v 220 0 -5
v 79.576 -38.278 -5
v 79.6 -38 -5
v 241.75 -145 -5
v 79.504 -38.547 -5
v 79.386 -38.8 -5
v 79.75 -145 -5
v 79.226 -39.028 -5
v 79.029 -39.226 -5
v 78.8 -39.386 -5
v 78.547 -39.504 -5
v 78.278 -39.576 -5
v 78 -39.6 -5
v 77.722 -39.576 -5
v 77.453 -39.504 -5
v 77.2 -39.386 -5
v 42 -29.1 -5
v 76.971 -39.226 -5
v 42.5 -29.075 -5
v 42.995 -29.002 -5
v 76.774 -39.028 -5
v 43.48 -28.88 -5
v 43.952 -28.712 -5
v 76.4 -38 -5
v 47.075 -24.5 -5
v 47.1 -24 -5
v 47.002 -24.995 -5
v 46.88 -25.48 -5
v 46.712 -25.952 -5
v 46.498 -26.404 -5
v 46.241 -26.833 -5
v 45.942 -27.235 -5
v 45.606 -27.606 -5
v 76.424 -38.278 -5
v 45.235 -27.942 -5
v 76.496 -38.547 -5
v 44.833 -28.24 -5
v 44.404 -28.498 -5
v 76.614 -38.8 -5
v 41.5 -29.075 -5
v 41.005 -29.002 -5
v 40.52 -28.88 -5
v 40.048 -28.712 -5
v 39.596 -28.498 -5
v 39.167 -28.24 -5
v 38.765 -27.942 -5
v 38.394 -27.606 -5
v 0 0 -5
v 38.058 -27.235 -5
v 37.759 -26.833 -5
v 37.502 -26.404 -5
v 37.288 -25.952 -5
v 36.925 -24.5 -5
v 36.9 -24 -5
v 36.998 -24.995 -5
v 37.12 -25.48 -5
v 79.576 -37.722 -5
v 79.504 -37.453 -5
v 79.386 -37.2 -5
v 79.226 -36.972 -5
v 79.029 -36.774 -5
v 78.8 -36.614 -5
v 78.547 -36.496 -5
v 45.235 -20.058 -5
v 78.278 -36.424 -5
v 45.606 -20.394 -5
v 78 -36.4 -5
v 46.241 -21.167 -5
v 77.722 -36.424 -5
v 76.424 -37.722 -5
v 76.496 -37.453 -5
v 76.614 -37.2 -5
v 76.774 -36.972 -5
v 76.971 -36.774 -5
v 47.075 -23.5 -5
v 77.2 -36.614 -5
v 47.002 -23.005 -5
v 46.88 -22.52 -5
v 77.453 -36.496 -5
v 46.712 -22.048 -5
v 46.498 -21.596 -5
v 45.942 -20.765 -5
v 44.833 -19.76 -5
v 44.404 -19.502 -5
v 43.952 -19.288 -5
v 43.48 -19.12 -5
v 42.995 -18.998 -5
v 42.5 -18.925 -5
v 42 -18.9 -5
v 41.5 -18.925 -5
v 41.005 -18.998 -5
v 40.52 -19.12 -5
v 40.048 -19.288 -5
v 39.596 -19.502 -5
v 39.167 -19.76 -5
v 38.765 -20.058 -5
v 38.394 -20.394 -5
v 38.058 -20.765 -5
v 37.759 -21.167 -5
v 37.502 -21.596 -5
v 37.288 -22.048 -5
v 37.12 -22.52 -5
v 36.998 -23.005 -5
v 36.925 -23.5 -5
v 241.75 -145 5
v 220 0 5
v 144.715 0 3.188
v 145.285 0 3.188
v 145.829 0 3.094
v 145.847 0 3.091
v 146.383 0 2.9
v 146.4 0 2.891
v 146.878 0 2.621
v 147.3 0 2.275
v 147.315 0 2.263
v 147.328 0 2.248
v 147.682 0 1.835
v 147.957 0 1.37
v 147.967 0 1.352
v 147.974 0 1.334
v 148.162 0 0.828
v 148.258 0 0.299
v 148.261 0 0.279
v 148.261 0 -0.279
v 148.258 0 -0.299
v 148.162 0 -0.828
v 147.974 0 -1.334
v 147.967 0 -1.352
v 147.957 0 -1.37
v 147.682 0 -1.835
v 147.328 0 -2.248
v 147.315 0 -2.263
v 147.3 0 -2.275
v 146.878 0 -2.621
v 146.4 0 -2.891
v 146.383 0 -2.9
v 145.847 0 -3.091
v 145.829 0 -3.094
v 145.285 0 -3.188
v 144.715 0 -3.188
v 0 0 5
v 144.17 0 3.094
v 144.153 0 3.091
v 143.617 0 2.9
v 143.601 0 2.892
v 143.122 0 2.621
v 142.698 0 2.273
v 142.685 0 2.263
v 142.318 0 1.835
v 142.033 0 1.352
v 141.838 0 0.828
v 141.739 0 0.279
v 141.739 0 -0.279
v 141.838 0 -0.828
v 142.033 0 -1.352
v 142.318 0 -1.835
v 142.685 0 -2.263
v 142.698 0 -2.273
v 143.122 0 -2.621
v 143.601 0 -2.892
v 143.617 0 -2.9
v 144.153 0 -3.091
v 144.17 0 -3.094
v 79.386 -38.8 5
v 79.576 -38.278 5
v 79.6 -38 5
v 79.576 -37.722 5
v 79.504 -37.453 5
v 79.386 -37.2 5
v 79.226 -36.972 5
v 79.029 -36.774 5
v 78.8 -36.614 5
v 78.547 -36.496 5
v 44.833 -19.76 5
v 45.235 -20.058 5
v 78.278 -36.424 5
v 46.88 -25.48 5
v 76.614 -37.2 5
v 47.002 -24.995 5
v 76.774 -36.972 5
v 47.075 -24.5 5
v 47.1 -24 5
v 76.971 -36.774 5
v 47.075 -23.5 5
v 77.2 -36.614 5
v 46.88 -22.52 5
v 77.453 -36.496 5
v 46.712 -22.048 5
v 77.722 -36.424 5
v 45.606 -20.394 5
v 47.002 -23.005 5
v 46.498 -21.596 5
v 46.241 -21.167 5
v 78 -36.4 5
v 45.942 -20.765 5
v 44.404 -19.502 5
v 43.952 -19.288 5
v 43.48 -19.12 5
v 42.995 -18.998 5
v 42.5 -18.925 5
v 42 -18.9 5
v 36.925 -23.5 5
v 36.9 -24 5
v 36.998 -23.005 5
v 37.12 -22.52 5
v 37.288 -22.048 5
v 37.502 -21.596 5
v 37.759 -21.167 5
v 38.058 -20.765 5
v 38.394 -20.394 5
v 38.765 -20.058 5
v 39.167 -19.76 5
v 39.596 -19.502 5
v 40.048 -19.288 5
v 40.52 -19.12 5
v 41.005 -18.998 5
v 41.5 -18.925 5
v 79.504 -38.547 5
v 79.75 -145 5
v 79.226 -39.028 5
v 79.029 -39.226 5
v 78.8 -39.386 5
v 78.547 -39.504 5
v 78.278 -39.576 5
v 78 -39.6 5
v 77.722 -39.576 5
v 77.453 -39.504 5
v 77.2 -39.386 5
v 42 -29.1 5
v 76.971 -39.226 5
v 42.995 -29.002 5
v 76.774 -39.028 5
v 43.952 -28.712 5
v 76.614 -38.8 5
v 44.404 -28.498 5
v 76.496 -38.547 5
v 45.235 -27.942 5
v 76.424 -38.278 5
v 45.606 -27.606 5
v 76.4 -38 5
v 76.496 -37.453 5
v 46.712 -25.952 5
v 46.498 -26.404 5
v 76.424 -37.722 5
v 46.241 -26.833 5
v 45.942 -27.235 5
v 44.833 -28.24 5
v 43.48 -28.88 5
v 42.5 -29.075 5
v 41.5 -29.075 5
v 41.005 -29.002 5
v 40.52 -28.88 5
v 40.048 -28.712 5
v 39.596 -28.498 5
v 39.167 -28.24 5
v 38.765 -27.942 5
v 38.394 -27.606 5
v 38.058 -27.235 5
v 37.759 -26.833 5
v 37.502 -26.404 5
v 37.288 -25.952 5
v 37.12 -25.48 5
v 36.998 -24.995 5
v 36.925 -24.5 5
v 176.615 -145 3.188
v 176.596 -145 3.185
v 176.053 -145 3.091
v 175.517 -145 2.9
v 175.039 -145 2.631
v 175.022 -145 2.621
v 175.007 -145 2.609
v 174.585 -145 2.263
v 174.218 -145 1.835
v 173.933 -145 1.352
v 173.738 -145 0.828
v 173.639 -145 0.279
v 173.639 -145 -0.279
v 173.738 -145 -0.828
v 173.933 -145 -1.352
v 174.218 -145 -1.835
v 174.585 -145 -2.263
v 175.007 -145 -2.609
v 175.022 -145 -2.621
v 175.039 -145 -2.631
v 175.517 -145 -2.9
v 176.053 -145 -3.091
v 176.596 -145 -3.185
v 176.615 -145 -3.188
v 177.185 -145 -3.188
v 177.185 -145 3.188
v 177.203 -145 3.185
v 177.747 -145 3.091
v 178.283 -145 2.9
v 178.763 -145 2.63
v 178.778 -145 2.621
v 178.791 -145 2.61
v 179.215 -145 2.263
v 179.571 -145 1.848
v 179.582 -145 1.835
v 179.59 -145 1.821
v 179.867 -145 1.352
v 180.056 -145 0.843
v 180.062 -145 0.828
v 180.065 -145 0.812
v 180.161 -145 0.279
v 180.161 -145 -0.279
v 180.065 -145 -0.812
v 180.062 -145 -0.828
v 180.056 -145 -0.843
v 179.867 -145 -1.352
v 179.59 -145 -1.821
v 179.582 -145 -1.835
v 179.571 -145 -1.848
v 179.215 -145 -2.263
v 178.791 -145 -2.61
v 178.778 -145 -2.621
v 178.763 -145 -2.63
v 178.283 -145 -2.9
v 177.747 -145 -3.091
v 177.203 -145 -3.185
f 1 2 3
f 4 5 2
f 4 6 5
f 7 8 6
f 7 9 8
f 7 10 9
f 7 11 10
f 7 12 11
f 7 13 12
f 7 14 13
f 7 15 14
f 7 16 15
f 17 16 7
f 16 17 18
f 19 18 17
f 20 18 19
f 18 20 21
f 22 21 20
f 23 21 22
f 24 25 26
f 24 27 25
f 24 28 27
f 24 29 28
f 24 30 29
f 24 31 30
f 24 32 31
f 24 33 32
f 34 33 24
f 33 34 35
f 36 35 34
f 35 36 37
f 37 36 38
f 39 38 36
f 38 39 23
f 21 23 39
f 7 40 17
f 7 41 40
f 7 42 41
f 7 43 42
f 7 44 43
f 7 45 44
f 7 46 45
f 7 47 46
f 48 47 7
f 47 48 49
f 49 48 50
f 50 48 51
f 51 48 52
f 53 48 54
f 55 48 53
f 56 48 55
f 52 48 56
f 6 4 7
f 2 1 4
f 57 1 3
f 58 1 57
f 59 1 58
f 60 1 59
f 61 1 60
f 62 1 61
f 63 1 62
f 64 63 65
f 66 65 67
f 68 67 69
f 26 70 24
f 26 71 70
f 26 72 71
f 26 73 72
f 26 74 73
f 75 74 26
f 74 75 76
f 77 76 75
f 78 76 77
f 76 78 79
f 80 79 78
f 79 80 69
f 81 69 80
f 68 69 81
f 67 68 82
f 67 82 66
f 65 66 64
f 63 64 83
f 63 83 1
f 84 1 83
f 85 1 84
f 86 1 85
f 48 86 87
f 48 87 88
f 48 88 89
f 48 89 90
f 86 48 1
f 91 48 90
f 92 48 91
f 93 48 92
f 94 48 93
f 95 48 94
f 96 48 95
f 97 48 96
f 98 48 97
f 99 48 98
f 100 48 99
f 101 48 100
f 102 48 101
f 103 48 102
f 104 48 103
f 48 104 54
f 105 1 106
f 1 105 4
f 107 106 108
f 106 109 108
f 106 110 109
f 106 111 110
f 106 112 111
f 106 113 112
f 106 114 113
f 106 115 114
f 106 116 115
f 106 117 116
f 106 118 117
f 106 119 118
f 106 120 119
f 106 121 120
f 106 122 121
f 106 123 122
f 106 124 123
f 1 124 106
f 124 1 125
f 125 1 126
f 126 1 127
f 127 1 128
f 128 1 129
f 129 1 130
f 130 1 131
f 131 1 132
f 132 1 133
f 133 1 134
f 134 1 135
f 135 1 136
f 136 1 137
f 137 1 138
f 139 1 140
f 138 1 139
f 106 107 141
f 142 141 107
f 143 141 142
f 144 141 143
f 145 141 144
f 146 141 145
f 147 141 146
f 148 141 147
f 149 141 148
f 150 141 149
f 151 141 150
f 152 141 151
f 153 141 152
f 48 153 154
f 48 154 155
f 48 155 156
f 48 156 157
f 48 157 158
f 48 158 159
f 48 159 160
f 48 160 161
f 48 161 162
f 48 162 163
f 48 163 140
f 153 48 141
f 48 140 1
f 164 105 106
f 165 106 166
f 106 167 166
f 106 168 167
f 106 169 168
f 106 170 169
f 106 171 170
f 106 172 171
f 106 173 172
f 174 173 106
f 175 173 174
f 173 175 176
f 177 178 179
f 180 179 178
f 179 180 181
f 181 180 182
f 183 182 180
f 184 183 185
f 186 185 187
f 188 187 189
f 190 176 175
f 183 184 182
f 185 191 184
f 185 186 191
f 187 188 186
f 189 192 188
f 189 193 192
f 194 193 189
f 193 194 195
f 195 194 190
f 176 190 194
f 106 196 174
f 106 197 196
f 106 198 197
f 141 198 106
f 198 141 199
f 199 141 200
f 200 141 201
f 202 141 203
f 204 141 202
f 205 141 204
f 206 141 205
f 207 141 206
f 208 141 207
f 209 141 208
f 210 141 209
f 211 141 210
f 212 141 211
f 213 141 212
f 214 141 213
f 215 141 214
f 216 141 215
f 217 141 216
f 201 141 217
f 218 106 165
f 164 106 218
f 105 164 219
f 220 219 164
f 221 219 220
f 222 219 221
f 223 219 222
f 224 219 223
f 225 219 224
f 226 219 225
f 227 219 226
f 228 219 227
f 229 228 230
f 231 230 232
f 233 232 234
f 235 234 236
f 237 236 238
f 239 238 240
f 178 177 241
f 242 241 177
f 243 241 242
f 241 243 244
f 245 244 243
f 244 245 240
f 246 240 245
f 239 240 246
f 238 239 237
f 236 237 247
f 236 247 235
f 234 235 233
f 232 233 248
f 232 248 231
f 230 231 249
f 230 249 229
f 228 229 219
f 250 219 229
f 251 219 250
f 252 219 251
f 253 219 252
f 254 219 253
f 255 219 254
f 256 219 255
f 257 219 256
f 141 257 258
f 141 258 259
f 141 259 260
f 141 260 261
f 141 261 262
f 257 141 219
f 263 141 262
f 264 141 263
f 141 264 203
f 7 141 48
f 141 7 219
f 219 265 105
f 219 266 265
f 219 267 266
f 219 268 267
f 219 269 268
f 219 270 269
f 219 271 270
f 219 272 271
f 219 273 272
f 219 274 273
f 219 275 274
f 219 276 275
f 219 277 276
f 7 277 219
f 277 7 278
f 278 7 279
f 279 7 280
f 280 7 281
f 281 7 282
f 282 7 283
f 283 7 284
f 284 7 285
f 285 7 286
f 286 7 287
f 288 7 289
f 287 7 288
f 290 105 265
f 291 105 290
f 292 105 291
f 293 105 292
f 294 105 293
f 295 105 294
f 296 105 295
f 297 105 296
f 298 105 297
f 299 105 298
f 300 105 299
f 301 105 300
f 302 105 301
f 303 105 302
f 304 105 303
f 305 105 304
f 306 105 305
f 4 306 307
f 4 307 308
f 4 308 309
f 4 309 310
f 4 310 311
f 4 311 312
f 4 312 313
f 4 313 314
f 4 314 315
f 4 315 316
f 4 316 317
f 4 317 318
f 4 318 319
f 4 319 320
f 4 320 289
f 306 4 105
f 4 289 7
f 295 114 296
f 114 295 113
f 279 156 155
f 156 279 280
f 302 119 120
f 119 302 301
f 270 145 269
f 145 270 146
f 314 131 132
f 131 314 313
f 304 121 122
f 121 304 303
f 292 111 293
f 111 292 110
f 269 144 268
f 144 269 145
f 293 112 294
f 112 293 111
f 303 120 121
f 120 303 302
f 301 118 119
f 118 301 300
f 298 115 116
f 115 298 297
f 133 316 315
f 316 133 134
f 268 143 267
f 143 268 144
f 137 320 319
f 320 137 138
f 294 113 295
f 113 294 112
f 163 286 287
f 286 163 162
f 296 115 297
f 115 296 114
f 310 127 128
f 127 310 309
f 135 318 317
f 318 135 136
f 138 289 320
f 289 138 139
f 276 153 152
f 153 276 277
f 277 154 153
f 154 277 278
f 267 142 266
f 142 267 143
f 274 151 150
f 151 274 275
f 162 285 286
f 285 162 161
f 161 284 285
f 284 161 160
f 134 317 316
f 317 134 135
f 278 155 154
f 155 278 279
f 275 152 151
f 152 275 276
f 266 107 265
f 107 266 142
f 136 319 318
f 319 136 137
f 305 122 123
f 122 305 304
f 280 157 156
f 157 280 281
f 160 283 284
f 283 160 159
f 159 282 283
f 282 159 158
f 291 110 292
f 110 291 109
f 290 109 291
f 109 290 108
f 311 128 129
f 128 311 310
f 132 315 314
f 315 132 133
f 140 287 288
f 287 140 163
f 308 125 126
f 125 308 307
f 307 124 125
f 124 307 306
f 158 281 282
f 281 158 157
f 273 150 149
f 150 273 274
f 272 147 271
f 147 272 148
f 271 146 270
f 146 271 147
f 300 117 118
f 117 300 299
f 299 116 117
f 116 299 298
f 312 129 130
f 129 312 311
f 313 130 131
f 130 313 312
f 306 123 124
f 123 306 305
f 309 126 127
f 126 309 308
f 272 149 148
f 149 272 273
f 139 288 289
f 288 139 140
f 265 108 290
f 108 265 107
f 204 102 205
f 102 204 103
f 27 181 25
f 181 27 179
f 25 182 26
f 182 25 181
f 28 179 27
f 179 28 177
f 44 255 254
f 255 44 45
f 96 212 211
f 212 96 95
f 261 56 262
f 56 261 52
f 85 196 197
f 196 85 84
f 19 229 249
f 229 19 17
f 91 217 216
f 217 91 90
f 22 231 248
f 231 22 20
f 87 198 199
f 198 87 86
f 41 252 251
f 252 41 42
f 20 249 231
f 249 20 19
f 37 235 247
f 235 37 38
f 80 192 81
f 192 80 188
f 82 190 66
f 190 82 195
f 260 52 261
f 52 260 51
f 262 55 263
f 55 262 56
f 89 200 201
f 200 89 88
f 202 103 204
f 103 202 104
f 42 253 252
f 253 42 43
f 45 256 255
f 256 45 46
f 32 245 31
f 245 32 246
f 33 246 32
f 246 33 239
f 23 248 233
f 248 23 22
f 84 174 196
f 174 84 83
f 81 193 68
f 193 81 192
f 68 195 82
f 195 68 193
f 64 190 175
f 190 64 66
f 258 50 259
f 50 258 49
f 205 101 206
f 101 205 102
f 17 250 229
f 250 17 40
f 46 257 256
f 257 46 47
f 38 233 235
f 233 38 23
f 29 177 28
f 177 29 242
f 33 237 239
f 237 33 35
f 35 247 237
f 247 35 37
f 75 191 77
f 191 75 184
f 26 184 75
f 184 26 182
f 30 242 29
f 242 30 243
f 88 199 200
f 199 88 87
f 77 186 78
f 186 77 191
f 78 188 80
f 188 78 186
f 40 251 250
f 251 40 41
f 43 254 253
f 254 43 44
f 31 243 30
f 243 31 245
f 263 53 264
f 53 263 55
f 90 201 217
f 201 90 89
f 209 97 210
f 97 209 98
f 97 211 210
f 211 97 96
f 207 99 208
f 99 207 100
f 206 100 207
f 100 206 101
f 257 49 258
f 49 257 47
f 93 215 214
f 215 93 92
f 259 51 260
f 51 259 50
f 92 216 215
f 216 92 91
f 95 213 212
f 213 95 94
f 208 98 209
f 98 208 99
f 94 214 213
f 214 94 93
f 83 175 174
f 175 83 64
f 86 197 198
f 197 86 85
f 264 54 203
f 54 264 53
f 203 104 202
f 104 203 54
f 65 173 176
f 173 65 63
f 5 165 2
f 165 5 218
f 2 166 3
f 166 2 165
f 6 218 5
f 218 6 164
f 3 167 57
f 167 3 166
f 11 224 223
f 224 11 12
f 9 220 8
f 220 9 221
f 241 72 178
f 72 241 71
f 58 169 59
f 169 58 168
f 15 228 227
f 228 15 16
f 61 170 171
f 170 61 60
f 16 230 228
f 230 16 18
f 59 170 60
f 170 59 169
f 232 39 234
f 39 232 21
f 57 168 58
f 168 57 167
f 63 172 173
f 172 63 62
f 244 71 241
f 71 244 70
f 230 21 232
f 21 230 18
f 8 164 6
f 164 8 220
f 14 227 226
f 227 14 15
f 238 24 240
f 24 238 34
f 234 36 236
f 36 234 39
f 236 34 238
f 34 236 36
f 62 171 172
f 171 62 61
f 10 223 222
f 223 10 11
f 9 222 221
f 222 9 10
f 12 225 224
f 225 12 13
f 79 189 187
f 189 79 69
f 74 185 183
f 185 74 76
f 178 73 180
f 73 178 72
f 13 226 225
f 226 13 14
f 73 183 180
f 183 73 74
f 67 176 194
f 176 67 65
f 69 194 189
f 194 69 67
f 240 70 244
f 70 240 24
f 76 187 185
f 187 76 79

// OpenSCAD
$fn=64;
module raw_wing(){
    union(){
        linear_extrude(height=10,center=true) polygon(points=[[0.0,0.0],[220.0,0.0],[241.75,145.0],[79.75,145.0]]);
        
    }
}
module spar_channel(){
    hull(){
        translate([143.9,-5,0]) sphere(d=6.4,$fn=36);
        translate([178.0,150,0]) sphere(d=6.4,$fn=36);
    }
}
module wing(){
    difference(){
        raw_wing();
        spar_channel();
        
        translate([42.0,24.0,-8]) cylinder(h=16,d=10.2,$fn=64);
        translate([78,38,-8]) cylinder(h=16,d=3.2,$fn=36);
    
    }
}
mirror([0,1,0]) wing();
